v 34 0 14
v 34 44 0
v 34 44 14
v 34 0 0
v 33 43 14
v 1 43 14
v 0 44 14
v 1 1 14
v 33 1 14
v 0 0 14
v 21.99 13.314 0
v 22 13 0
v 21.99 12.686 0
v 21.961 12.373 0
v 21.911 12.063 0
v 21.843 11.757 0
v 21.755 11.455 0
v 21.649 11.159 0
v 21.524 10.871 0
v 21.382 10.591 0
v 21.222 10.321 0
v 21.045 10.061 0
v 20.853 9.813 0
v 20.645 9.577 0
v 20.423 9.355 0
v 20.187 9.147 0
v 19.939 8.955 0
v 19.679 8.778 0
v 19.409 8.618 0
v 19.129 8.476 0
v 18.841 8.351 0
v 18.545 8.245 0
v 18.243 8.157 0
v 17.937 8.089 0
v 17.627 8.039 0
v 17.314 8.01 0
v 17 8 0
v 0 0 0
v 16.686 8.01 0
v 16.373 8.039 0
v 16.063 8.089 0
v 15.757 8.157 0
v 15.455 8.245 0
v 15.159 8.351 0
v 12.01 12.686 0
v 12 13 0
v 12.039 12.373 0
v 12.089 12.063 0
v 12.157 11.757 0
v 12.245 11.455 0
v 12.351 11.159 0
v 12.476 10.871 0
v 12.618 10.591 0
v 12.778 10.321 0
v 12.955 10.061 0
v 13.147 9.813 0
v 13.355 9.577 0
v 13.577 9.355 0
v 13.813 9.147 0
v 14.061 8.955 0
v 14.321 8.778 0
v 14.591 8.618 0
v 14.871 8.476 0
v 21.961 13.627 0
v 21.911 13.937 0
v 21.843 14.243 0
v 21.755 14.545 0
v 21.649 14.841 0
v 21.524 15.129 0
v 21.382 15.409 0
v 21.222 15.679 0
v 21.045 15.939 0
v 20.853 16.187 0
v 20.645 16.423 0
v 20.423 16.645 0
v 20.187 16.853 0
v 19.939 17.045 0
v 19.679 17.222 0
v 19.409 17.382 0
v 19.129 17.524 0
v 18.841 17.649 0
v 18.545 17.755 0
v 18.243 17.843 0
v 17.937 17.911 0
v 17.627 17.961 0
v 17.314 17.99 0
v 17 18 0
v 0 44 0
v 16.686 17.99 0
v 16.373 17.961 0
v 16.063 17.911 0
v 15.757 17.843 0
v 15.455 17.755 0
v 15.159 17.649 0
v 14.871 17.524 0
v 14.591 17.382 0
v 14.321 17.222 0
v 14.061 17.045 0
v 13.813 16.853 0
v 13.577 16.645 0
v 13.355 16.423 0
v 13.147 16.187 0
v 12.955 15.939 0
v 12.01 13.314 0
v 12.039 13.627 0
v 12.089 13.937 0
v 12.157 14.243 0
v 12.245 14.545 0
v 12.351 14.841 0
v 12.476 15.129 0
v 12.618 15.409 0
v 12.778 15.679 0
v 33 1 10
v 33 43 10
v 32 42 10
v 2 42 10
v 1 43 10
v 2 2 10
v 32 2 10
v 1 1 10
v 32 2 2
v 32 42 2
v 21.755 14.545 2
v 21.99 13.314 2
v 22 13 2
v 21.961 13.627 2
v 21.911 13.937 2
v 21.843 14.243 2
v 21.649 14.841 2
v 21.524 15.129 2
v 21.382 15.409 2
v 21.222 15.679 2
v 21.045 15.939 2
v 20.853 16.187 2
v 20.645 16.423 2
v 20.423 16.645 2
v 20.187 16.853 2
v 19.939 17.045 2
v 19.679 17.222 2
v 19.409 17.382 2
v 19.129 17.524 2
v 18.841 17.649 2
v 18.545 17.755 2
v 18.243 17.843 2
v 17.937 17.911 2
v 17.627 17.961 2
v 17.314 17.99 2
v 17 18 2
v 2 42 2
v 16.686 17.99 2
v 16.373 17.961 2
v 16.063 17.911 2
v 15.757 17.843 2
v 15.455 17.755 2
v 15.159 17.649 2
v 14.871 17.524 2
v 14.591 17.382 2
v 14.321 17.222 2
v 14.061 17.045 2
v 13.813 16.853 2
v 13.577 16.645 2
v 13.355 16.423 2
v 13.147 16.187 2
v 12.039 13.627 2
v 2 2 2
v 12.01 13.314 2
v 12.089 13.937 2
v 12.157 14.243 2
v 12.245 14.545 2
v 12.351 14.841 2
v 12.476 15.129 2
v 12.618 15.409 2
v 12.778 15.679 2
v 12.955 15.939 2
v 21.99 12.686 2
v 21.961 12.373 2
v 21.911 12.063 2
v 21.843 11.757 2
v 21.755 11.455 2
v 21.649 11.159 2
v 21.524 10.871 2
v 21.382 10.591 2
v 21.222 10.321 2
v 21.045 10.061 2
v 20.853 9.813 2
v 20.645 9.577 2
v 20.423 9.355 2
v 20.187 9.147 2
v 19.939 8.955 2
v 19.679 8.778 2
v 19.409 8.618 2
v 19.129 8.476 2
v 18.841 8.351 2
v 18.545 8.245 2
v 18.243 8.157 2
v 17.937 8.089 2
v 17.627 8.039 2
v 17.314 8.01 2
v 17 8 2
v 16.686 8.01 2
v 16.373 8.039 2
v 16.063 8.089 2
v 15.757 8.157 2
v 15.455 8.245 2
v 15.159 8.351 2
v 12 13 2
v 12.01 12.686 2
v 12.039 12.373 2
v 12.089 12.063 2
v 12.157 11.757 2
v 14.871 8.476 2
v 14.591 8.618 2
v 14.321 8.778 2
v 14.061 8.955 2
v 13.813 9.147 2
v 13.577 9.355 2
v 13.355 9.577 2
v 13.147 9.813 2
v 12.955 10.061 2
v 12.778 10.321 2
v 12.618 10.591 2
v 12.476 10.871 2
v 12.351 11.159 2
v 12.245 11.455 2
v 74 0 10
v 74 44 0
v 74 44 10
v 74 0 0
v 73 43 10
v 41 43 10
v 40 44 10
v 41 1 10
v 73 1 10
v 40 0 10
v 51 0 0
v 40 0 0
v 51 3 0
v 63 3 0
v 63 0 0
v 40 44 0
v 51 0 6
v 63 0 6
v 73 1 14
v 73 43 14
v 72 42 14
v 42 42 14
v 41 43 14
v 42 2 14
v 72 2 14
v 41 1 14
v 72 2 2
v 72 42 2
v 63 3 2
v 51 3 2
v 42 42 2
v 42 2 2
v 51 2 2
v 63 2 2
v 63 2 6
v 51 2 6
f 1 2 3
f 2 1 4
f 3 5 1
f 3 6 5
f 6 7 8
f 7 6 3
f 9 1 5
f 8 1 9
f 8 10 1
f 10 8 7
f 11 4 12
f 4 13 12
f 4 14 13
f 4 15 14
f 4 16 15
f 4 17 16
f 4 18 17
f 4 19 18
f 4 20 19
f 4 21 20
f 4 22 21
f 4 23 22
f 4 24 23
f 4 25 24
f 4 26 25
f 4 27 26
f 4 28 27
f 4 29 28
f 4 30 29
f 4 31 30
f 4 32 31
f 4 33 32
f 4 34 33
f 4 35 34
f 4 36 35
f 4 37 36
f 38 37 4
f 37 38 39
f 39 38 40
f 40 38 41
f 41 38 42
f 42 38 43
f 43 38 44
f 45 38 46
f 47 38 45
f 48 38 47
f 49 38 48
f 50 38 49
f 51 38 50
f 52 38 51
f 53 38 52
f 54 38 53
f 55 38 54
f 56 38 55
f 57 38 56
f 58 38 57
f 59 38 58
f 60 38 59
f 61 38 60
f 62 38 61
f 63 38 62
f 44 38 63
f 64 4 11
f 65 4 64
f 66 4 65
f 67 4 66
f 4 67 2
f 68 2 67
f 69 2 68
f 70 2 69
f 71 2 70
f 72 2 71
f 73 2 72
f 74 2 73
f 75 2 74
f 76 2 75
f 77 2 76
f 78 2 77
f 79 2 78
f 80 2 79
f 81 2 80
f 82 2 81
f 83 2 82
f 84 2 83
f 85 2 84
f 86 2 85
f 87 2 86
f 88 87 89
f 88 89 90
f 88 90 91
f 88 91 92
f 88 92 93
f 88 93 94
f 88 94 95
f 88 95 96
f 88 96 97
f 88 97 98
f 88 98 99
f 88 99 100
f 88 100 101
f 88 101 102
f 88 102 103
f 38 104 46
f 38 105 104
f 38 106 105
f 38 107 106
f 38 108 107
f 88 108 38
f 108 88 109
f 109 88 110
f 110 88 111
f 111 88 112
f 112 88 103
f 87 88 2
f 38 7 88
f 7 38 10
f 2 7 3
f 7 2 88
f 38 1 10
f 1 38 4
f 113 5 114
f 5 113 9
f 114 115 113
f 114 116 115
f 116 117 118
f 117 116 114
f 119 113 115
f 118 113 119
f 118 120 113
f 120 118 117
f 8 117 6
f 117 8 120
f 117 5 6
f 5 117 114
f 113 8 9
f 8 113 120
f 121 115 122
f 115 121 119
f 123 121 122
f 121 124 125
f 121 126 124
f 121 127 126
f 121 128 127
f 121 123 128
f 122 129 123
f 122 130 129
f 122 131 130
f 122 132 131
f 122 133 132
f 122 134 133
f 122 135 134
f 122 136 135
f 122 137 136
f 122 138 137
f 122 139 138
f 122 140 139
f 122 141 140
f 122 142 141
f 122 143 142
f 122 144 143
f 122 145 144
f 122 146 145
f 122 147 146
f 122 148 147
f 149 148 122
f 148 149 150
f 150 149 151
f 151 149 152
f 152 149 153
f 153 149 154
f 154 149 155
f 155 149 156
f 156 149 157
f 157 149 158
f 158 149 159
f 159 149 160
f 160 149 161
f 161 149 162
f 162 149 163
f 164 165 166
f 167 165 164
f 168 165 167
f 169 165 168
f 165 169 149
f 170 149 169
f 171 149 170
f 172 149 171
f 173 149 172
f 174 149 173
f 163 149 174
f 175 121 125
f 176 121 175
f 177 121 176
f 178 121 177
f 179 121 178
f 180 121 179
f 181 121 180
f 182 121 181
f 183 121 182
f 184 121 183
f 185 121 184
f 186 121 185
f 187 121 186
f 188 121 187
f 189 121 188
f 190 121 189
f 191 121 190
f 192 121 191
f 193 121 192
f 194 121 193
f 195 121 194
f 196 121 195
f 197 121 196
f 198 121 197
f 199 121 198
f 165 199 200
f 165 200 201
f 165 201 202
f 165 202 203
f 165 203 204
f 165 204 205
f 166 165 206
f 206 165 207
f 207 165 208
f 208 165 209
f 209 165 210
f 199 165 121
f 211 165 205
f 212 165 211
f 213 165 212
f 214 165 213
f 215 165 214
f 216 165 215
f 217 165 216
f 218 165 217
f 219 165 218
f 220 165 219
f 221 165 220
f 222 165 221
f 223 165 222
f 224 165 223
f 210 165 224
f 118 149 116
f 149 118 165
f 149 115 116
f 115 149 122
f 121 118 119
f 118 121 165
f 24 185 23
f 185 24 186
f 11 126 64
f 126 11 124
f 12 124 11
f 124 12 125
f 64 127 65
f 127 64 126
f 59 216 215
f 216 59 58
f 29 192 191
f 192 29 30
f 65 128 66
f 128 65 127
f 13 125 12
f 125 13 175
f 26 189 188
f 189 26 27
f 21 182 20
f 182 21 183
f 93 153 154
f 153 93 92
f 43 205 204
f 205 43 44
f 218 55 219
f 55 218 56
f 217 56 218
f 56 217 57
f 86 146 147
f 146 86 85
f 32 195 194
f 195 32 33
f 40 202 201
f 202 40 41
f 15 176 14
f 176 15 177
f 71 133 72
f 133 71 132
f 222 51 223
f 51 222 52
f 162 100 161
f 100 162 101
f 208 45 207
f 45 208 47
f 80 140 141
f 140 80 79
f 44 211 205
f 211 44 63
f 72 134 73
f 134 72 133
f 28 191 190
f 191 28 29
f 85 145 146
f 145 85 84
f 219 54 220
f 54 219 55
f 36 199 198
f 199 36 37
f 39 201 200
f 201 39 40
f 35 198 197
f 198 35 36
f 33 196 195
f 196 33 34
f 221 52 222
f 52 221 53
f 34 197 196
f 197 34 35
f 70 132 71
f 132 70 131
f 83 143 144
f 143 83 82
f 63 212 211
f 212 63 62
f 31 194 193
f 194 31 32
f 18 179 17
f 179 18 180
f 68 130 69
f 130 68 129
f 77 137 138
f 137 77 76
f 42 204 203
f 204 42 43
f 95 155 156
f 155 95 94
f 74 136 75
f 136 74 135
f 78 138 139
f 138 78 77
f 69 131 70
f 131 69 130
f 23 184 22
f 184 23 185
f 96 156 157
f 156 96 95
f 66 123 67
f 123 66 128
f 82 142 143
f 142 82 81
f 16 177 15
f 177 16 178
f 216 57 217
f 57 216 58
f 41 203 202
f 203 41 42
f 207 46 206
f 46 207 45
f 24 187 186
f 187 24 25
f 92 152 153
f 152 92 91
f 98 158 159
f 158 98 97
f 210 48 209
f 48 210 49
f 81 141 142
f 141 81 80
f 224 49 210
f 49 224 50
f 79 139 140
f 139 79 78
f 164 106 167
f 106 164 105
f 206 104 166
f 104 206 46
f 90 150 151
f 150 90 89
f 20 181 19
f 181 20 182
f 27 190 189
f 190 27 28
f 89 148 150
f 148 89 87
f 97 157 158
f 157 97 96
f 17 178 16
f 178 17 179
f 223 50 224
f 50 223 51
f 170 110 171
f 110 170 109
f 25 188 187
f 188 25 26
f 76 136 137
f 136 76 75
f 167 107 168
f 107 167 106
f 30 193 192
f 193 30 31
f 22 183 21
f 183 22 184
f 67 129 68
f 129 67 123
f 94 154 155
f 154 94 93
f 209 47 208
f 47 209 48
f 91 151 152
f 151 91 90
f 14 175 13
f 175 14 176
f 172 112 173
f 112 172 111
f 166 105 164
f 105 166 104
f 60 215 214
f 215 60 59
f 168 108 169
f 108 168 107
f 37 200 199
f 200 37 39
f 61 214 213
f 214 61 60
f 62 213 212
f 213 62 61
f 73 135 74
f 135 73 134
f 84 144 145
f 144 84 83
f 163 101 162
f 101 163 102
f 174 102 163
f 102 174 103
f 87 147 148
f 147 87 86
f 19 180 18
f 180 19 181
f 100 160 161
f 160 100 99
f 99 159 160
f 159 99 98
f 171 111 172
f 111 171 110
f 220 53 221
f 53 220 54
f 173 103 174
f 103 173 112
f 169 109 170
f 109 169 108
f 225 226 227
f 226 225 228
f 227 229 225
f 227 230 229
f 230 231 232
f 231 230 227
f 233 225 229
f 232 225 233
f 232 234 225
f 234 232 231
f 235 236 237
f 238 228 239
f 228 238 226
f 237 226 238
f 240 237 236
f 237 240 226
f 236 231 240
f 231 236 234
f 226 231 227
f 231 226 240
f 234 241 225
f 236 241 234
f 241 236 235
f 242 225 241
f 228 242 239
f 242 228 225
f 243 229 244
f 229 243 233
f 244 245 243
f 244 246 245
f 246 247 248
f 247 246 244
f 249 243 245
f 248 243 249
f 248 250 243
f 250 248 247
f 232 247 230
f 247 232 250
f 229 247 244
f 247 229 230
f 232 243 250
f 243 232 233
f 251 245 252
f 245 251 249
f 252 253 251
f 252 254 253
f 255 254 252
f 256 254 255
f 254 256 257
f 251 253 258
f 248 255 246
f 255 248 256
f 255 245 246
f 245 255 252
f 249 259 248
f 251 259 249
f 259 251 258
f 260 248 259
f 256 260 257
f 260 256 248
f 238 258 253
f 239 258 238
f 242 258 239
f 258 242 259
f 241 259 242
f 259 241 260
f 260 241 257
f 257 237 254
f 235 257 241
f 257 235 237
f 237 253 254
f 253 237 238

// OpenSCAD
// This is a simple case for an ESP32-CAM module, including
// the ESP32-CAM-M8 USB hat

$fn = 100;


difference() {
    union() {
        cube([34, 44, 14]);
    }
    translate([1, 1, 10])
    cube([32, 42, 10]);
    translate([2, 2, 2])
    cube([30, 40, 20]);
    // camera cutout
    translate([17, 13, -1])
    cylinder(h = 4, d = 10);
}

translate([40, 0, 0]) base();

module base() {
    difference() {
        union() {
            cube([34, 44, 10]);
            translate([1, 1, 0])
            cube([32, 42, 14]);
        }
        translate([2, 2, 2])
        cube([30, 40, 20]);
        // USB
        translate([34/2-6, -1, -1])
        cube([12, 4, 7]);
    }
}
